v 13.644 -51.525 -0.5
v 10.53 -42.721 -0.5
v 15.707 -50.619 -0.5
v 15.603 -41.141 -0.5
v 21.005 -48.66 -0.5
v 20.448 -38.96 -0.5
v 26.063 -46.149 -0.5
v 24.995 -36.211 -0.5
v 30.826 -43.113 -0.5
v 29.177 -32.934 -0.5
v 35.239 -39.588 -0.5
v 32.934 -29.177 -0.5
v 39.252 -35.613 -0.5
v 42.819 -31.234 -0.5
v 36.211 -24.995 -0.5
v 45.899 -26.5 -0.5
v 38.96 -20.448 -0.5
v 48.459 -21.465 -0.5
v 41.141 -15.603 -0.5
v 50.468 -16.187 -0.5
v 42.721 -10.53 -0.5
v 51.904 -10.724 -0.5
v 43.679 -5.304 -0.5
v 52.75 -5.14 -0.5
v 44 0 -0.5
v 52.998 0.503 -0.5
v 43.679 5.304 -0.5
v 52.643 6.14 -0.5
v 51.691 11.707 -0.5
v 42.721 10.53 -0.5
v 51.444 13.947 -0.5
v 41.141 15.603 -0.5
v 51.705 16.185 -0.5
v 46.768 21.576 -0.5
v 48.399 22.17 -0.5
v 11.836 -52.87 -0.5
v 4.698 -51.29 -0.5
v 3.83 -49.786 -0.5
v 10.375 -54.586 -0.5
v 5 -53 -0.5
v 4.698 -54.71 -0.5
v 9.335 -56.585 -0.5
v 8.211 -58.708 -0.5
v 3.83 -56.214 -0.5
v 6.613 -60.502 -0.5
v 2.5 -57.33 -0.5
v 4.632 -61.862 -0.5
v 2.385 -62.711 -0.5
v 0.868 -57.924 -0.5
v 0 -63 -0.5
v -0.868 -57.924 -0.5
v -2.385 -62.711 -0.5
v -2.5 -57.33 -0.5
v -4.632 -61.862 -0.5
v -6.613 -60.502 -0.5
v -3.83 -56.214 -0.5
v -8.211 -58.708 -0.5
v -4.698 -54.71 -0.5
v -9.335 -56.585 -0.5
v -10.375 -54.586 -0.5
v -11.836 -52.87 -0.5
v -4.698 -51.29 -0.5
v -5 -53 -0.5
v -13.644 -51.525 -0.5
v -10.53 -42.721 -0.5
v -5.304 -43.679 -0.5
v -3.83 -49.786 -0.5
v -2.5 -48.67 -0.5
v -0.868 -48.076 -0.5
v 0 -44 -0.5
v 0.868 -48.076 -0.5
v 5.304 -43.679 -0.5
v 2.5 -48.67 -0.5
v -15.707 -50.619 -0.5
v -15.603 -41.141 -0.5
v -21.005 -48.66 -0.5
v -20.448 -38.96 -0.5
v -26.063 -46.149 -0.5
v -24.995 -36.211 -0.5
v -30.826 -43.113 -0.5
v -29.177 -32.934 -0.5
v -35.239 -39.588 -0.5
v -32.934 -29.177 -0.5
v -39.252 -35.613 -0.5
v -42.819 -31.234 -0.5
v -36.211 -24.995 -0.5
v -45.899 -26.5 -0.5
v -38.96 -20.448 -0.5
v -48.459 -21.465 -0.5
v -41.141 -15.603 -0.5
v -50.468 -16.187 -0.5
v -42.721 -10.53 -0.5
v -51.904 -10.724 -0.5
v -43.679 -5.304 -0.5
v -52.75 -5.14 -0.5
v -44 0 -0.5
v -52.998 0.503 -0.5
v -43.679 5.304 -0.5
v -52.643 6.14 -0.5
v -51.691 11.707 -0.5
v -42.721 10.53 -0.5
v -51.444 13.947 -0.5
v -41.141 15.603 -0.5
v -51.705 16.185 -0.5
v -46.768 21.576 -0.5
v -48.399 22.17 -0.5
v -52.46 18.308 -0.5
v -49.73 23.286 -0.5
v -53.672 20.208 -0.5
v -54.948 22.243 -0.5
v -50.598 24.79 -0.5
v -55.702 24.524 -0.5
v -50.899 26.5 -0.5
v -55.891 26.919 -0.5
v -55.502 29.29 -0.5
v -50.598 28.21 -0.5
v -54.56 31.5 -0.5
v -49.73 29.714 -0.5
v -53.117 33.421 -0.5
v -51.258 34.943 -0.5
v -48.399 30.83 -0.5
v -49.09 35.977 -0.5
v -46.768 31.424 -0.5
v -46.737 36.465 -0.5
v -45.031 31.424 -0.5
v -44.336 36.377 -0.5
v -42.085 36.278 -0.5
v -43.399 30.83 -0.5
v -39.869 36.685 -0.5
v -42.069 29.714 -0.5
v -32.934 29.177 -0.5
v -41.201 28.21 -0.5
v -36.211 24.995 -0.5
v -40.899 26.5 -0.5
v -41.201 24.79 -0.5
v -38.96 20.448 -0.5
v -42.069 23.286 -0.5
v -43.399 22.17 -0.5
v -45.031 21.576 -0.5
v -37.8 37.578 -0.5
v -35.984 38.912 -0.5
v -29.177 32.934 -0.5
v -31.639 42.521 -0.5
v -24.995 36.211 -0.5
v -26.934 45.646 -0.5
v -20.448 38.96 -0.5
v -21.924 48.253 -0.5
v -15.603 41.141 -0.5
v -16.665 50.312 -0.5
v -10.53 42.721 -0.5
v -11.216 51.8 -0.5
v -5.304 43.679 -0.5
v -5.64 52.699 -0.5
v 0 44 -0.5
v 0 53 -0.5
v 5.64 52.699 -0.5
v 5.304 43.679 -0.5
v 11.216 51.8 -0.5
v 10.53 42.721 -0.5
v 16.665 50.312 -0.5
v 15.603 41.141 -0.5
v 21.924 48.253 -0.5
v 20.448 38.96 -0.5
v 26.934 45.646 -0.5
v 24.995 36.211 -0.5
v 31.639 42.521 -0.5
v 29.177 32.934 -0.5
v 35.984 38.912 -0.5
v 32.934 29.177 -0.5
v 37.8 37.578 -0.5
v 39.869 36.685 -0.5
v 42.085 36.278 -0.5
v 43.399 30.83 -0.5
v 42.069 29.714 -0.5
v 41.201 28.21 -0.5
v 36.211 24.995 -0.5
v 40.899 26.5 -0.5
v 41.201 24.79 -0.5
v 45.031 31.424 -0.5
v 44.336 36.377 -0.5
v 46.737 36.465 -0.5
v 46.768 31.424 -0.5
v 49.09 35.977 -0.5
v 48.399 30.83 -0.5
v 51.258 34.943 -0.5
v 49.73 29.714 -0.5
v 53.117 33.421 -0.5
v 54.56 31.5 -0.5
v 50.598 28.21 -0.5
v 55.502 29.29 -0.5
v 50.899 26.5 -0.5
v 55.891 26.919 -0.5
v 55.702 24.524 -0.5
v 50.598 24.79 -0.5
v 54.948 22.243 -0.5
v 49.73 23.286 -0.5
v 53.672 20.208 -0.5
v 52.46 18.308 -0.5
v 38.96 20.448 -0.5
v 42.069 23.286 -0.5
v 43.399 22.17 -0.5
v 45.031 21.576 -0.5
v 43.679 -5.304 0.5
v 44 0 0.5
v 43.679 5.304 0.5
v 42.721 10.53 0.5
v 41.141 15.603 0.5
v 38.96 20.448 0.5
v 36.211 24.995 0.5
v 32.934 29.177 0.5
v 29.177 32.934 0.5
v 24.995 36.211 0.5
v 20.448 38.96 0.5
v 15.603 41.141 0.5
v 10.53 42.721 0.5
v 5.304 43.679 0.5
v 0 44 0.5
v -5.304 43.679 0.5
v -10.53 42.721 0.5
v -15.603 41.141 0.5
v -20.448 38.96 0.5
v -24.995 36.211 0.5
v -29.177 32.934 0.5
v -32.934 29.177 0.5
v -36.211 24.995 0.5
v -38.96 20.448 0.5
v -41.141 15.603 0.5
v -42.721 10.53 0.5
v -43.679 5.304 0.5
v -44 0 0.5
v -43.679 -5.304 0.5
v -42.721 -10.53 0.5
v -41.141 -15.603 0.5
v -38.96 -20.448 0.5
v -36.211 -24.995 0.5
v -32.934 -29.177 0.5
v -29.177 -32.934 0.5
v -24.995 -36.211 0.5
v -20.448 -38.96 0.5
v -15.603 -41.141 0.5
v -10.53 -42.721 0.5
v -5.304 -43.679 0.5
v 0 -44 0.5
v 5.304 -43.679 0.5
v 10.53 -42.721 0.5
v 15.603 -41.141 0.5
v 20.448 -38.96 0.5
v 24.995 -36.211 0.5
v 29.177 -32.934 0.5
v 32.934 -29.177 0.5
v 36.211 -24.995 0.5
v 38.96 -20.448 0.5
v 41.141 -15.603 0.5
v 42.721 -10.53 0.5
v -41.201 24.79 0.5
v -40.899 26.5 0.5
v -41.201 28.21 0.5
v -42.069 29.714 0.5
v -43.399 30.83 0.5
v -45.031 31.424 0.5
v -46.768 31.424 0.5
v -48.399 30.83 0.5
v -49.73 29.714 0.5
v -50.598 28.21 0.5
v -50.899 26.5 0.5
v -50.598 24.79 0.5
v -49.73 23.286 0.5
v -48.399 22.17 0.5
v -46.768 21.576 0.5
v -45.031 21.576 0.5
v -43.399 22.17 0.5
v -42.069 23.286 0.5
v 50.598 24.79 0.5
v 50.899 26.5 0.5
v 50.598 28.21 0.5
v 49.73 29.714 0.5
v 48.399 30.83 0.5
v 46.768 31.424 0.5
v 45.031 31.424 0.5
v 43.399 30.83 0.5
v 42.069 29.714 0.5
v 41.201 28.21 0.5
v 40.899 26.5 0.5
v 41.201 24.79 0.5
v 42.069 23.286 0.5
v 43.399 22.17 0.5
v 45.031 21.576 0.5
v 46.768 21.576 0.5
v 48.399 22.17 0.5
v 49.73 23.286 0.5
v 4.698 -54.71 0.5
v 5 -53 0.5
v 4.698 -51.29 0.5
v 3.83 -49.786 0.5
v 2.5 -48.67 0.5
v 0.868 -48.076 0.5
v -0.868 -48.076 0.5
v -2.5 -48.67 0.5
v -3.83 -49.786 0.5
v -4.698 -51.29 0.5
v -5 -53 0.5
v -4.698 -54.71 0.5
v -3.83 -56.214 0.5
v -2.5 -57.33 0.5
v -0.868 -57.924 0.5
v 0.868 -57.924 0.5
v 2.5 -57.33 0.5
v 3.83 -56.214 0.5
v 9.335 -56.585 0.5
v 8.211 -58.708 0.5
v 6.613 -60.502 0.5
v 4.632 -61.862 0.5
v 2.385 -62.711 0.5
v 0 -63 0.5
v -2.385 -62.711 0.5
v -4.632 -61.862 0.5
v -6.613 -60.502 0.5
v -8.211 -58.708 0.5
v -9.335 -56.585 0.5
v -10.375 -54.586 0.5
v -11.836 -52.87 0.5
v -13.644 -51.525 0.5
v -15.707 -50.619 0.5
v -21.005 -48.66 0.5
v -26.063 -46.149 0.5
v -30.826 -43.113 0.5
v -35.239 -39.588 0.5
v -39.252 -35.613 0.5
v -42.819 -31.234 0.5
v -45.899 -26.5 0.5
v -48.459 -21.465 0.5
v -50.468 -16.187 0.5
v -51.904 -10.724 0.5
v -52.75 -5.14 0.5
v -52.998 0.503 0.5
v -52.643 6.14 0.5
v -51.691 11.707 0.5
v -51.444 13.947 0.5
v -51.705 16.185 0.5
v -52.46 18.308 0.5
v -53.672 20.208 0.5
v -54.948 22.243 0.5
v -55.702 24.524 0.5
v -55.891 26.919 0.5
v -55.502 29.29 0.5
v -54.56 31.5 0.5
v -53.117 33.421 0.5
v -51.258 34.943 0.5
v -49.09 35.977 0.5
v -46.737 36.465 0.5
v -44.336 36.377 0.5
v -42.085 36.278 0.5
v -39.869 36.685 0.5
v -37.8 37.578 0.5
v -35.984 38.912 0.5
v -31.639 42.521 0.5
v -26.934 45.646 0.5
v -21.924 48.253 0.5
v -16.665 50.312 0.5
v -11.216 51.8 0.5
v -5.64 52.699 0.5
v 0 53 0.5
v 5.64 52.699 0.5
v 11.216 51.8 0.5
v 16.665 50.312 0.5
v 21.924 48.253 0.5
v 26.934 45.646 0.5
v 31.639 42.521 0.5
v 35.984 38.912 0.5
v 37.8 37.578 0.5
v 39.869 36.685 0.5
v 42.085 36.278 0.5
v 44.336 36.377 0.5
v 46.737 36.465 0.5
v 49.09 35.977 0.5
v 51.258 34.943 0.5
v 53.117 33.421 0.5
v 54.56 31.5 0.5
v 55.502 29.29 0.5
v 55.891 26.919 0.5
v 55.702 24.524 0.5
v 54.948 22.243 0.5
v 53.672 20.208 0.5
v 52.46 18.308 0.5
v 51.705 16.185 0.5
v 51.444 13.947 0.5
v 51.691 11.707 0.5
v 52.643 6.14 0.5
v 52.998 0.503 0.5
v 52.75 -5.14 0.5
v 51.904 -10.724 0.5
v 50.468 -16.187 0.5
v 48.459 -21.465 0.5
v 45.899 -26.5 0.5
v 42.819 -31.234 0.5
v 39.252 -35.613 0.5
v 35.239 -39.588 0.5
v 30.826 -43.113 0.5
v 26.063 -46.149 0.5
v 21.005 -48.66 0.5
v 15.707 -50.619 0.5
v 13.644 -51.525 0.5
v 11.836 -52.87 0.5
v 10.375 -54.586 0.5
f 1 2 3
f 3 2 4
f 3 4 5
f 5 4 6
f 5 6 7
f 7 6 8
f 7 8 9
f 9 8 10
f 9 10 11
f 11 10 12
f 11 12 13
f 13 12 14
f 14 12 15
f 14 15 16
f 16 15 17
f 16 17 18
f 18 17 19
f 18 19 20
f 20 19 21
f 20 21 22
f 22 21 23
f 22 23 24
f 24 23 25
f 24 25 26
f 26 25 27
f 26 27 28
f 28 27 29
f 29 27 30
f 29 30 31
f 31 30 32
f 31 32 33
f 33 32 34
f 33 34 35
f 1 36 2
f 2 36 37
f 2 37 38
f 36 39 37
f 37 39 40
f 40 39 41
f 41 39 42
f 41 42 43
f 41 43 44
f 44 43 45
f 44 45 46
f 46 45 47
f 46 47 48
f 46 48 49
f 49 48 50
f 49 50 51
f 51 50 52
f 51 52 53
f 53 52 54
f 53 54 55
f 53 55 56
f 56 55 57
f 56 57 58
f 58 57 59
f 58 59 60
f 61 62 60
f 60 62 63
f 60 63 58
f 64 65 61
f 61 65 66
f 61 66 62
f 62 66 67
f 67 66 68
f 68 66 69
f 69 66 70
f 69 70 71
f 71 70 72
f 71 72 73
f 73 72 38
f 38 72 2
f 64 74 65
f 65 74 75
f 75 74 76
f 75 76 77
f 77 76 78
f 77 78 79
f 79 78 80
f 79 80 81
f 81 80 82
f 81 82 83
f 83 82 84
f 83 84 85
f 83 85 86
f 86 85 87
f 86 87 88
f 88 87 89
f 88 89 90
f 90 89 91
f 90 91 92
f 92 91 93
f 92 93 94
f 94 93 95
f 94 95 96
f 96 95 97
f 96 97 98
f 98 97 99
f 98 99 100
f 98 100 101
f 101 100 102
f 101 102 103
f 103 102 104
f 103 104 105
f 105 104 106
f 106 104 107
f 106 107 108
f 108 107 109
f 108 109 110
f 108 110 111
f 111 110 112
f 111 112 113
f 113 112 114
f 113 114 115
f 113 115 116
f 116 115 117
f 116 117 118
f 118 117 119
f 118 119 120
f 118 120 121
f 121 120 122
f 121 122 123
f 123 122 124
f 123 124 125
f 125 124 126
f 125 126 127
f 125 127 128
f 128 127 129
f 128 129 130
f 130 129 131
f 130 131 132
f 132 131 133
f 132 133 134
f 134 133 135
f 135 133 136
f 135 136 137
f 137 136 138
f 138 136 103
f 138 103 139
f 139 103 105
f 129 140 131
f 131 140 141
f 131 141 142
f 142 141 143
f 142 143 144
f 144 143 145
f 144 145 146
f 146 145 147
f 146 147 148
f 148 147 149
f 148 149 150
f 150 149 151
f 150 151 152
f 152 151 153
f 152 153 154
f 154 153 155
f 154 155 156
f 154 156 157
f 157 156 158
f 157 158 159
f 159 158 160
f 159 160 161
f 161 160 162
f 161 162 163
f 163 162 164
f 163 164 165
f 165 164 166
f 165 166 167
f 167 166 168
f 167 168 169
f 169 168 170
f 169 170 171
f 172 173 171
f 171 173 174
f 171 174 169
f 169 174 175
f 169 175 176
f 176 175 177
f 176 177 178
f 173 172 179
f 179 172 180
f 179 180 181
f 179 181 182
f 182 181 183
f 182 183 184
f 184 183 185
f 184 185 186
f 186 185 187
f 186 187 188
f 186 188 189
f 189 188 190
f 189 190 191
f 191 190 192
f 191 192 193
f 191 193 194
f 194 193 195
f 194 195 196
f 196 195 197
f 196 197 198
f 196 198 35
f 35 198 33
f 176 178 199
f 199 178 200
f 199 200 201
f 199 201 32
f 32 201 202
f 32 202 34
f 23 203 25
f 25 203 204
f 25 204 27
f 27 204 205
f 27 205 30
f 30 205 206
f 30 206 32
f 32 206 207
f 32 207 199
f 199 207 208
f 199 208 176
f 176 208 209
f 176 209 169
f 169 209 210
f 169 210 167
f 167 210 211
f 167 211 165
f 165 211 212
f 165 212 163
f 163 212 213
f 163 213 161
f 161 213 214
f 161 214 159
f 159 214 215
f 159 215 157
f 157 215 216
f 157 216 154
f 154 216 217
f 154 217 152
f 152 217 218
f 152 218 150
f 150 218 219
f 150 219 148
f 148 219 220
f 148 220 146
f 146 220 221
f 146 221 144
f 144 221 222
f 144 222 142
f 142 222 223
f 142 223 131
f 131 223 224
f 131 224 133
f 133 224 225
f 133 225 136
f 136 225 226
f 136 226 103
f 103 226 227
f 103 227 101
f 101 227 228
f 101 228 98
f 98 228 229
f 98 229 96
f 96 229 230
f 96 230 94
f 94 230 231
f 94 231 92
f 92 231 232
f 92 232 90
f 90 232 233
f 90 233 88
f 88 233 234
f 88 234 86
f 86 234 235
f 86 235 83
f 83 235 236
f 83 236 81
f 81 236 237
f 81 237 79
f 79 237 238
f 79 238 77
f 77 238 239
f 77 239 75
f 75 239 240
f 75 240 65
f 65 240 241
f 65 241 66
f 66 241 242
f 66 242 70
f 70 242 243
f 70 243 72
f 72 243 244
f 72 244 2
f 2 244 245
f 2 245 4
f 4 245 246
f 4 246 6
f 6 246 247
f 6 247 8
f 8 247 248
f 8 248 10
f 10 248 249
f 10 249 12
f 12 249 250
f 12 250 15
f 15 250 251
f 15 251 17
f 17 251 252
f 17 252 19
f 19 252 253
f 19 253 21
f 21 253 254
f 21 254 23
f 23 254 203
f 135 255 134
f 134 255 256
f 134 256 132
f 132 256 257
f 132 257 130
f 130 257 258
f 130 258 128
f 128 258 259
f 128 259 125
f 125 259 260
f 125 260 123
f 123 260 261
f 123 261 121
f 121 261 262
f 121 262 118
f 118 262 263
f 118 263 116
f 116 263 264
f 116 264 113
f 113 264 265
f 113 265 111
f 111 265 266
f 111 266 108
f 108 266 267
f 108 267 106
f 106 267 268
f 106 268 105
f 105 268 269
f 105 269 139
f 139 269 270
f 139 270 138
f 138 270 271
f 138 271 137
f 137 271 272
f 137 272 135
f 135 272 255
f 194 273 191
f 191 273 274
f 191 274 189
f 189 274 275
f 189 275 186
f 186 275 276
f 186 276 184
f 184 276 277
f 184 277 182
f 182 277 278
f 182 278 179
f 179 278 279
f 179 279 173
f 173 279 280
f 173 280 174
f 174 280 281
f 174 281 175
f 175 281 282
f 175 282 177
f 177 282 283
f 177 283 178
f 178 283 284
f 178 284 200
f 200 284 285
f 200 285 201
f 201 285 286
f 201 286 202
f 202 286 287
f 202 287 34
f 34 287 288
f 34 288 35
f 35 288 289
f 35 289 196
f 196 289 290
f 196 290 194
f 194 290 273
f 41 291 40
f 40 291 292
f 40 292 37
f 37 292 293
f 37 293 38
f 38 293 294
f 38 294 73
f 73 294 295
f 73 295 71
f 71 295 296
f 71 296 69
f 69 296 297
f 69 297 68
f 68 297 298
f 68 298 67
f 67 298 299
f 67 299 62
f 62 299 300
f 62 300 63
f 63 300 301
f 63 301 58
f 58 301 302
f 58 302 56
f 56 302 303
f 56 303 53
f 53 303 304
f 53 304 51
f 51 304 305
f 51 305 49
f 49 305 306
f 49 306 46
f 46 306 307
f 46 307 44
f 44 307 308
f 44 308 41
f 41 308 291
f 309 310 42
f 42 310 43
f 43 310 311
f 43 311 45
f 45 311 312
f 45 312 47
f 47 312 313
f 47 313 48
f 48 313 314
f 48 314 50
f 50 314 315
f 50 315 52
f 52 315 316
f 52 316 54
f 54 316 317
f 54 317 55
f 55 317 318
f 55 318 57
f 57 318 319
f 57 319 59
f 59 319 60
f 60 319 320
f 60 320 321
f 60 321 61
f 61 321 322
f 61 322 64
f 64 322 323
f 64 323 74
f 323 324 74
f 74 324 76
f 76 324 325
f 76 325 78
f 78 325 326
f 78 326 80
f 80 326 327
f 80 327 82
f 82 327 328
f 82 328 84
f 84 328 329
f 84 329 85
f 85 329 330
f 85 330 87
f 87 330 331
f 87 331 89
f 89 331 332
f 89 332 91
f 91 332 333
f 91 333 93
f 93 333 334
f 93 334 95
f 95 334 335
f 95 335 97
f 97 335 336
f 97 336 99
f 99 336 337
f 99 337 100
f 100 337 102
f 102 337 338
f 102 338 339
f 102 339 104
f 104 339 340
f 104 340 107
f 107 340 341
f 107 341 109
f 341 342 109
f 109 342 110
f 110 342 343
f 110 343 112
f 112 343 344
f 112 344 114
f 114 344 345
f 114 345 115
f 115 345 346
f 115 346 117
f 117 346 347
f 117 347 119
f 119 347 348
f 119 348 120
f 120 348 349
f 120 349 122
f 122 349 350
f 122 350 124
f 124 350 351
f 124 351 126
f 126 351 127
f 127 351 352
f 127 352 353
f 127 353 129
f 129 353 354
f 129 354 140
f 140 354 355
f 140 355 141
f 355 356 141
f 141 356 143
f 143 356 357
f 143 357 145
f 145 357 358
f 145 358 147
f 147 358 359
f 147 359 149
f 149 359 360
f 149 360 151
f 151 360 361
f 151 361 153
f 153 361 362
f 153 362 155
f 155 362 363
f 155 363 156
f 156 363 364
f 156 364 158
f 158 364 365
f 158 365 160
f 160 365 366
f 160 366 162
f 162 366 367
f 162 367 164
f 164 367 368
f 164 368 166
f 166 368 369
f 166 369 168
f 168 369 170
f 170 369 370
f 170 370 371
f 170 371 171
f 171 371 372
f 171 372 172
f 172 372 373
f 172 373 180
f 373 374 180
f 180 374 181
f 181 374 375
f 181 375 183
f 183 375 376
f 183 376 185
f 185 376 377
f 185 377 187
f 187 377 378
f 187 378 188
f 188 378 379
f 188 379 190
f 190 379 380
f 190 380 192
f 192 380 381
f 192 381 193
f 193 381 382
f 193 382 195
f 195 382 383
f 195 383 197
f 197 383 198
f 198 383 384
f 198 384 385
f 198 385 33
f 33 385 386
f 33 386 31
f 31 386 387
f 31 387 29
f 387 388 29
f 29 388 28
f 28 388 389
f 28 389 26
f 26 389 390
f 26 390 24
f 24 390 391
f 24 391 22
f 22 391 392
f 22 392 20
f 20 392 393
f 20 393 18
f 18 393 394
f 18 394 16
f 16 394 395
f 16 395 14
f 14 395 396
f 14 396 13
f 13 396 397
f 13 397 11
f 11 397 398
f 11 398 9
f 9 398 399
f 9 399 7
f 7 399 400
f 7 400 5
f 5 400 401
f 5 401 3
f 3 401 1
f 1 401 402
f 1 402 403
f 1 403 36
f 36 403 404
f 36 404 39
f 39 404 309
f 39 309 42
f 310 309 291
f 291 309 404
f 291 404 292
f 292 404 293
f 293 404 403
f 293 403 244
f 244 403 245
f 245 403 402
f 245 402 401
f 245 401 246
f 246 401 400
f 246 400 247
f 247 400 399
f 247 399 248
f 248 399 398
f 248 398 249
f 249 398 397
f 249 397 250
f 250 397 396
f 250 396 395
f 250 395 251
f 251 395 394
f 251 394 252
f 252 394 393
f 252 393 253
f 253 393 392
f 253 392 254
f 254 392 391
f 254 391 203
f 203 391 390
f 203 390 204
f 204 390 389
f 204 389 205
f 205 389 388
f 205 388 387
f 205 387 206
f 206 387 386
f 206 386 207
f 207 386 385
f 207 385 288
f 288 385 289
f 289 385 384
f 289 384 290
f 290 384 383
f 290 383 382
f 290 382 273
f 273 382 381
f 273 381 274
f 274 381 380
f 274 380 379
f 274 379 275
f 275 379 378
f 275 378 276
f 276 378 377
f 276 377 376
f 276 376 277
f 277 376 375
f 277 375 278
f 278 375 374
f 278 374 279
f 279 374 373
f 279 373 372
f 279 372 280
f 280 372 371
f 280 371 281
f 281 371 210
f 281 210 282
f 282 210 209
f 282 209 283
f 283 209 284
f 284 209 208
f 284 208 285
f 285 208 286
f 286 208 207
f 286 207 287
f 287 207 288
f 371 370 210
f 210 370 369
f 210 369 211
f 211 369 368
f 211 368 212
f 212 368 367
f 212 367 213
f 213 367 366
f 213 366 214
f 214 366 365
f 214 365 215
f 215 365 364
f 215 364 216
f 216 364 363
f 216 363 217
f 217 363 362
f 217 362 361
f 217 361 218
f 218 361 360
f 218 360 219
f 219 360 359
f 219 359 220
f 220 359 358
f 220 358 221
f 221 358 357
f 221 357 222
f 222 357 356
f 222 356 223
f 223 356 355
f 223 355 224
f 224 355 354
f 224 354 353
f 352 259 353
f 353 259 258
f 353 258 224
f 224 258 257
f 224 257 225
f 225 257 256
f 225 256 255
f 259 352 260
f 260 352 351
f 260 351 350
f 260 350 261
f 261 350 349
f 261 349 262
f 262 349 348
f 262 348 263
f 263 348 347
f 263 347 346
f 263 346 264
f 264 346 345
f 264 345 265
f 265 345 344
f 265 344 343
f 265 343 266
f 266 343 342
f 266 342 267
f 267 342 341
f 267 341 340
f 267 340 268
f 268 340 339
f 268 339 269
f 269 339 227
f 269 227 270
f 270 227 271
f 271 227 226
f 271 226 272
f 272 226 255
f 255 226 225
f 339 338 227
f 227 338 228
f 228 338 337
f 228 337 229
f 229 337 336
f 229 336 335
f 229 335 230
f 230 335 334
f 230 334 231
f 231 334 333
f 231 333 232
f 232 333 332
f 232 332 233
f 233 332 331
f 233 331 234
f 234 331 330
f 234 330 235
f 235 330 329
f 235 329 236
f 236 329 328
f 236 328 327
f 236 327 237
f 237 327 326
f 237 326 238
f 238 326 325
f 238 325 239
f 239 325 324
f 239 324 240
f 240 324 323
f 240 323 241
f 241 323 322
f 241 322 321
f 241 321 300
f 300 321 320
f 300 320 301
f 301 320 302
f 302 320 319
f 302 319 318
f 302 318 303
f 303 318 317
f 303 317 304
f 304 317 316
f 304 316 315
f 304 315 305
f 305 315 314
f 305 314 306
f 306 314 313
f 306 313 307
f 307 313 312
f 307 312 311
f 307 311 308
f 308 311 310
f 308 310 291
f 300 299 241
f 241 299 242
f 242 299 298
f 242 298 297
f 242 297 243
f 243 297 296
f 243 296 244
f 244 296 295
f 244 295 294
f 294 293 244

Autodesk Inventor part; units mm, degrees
ref_plane "YZ Plane" through (0, 0, 0) normal (1, 0, 0) x (0, 1, 0)
ref_plane "XZ Plane" through (0, 0, 0) normal (0, 1, 0) x (-1, 0, 0)
ref_plane "XY Plane" through (0, 0, 0) normal (0, 0, 1) x (1, 0, 0)
sketch "Эскиз1" plane through (0, 0, 0) normal (0, 0, 1) x (1, 0, 0)
  circle A0 centre (0, 0) radius 44
  circle A1 centre (-45.8993, 26.5) radius 5
  circle A2 centre (45.8993, 26.5) radius 5
  circle A3 centre (0, -53) radius 5
  line L0 (0, 0) -> (-45.8993, 26.5) construction
  line L1 (0, 0) -> (45.8993, 26.5) construction
  line L2 (0, -53) -> (0, 0) construction
  arc A4 (-51.6909, 11.7068) -> (-53.6716, 20.2078) centre (-61.4439, 13.9156) ccw
  arc A5 (-44.3363, 36.3771) -> (-53.6716, 20.2078) centre (-45.8993, 26.5) ccw
  arc A6 (-44.3363, 36.3771) -> (-35.9838, 38.9122) centre (-42.7733, 46.2542) ccw
  arc A7 (35.9838, 38.9122) -> (44.3363, 36.3771) centre (42.7733, 46.2542) ccw
  arc A8 (53.6716, 20.2078) -> (44.3363, 36.3771) centre (45.8993, 26.5) ccw
  arc A9 (53.6716, 20.2078) -> (51.6909, 11.7068) centre (61.4439, 13.9156) ccw
  arc A10 (15.7071, -50.619) -> (9.3353, -56.5849) centre (18.6707, -60.1698) ccw
  arc A11 (-9.3353, -56.5849) -> (9.3353, -56.5849) centre (0, -53) ccw
  arc A12 (-9.3353, -56.5849) -> (-15.7071, -50.619) centre (-18.6707, -60.1698) ccw
  arc A13 (4.9944, -52.7642) -> (0, -53) centre (0, 0) ccw construction
  arc A14 (35.9838, 38.9122) -> (-35.9838, 38.9122) centre (0, 0) ccw
  arc A15 (-51.6909, 11.7068) -> (-15.7071, -50.619) centre (0, 0) ccw
  arc A16 (15.7071, -50.619) -> (51.6909, 11.7068) centre (0, 0) ccw
  dimension "d0" = 88
  dimension "d2" = 10
  dimension "d3" = 120
  dimension "d4" = 120
  dimension "d6" = 10
  dimension "d7" = 106
  dimension "d8" = 53
  dimension "d10" = 53
extrude "Выдавливание1" add sketch "Эскиз1" along normal mid plane 1
properties part number "79. Прокладка"
